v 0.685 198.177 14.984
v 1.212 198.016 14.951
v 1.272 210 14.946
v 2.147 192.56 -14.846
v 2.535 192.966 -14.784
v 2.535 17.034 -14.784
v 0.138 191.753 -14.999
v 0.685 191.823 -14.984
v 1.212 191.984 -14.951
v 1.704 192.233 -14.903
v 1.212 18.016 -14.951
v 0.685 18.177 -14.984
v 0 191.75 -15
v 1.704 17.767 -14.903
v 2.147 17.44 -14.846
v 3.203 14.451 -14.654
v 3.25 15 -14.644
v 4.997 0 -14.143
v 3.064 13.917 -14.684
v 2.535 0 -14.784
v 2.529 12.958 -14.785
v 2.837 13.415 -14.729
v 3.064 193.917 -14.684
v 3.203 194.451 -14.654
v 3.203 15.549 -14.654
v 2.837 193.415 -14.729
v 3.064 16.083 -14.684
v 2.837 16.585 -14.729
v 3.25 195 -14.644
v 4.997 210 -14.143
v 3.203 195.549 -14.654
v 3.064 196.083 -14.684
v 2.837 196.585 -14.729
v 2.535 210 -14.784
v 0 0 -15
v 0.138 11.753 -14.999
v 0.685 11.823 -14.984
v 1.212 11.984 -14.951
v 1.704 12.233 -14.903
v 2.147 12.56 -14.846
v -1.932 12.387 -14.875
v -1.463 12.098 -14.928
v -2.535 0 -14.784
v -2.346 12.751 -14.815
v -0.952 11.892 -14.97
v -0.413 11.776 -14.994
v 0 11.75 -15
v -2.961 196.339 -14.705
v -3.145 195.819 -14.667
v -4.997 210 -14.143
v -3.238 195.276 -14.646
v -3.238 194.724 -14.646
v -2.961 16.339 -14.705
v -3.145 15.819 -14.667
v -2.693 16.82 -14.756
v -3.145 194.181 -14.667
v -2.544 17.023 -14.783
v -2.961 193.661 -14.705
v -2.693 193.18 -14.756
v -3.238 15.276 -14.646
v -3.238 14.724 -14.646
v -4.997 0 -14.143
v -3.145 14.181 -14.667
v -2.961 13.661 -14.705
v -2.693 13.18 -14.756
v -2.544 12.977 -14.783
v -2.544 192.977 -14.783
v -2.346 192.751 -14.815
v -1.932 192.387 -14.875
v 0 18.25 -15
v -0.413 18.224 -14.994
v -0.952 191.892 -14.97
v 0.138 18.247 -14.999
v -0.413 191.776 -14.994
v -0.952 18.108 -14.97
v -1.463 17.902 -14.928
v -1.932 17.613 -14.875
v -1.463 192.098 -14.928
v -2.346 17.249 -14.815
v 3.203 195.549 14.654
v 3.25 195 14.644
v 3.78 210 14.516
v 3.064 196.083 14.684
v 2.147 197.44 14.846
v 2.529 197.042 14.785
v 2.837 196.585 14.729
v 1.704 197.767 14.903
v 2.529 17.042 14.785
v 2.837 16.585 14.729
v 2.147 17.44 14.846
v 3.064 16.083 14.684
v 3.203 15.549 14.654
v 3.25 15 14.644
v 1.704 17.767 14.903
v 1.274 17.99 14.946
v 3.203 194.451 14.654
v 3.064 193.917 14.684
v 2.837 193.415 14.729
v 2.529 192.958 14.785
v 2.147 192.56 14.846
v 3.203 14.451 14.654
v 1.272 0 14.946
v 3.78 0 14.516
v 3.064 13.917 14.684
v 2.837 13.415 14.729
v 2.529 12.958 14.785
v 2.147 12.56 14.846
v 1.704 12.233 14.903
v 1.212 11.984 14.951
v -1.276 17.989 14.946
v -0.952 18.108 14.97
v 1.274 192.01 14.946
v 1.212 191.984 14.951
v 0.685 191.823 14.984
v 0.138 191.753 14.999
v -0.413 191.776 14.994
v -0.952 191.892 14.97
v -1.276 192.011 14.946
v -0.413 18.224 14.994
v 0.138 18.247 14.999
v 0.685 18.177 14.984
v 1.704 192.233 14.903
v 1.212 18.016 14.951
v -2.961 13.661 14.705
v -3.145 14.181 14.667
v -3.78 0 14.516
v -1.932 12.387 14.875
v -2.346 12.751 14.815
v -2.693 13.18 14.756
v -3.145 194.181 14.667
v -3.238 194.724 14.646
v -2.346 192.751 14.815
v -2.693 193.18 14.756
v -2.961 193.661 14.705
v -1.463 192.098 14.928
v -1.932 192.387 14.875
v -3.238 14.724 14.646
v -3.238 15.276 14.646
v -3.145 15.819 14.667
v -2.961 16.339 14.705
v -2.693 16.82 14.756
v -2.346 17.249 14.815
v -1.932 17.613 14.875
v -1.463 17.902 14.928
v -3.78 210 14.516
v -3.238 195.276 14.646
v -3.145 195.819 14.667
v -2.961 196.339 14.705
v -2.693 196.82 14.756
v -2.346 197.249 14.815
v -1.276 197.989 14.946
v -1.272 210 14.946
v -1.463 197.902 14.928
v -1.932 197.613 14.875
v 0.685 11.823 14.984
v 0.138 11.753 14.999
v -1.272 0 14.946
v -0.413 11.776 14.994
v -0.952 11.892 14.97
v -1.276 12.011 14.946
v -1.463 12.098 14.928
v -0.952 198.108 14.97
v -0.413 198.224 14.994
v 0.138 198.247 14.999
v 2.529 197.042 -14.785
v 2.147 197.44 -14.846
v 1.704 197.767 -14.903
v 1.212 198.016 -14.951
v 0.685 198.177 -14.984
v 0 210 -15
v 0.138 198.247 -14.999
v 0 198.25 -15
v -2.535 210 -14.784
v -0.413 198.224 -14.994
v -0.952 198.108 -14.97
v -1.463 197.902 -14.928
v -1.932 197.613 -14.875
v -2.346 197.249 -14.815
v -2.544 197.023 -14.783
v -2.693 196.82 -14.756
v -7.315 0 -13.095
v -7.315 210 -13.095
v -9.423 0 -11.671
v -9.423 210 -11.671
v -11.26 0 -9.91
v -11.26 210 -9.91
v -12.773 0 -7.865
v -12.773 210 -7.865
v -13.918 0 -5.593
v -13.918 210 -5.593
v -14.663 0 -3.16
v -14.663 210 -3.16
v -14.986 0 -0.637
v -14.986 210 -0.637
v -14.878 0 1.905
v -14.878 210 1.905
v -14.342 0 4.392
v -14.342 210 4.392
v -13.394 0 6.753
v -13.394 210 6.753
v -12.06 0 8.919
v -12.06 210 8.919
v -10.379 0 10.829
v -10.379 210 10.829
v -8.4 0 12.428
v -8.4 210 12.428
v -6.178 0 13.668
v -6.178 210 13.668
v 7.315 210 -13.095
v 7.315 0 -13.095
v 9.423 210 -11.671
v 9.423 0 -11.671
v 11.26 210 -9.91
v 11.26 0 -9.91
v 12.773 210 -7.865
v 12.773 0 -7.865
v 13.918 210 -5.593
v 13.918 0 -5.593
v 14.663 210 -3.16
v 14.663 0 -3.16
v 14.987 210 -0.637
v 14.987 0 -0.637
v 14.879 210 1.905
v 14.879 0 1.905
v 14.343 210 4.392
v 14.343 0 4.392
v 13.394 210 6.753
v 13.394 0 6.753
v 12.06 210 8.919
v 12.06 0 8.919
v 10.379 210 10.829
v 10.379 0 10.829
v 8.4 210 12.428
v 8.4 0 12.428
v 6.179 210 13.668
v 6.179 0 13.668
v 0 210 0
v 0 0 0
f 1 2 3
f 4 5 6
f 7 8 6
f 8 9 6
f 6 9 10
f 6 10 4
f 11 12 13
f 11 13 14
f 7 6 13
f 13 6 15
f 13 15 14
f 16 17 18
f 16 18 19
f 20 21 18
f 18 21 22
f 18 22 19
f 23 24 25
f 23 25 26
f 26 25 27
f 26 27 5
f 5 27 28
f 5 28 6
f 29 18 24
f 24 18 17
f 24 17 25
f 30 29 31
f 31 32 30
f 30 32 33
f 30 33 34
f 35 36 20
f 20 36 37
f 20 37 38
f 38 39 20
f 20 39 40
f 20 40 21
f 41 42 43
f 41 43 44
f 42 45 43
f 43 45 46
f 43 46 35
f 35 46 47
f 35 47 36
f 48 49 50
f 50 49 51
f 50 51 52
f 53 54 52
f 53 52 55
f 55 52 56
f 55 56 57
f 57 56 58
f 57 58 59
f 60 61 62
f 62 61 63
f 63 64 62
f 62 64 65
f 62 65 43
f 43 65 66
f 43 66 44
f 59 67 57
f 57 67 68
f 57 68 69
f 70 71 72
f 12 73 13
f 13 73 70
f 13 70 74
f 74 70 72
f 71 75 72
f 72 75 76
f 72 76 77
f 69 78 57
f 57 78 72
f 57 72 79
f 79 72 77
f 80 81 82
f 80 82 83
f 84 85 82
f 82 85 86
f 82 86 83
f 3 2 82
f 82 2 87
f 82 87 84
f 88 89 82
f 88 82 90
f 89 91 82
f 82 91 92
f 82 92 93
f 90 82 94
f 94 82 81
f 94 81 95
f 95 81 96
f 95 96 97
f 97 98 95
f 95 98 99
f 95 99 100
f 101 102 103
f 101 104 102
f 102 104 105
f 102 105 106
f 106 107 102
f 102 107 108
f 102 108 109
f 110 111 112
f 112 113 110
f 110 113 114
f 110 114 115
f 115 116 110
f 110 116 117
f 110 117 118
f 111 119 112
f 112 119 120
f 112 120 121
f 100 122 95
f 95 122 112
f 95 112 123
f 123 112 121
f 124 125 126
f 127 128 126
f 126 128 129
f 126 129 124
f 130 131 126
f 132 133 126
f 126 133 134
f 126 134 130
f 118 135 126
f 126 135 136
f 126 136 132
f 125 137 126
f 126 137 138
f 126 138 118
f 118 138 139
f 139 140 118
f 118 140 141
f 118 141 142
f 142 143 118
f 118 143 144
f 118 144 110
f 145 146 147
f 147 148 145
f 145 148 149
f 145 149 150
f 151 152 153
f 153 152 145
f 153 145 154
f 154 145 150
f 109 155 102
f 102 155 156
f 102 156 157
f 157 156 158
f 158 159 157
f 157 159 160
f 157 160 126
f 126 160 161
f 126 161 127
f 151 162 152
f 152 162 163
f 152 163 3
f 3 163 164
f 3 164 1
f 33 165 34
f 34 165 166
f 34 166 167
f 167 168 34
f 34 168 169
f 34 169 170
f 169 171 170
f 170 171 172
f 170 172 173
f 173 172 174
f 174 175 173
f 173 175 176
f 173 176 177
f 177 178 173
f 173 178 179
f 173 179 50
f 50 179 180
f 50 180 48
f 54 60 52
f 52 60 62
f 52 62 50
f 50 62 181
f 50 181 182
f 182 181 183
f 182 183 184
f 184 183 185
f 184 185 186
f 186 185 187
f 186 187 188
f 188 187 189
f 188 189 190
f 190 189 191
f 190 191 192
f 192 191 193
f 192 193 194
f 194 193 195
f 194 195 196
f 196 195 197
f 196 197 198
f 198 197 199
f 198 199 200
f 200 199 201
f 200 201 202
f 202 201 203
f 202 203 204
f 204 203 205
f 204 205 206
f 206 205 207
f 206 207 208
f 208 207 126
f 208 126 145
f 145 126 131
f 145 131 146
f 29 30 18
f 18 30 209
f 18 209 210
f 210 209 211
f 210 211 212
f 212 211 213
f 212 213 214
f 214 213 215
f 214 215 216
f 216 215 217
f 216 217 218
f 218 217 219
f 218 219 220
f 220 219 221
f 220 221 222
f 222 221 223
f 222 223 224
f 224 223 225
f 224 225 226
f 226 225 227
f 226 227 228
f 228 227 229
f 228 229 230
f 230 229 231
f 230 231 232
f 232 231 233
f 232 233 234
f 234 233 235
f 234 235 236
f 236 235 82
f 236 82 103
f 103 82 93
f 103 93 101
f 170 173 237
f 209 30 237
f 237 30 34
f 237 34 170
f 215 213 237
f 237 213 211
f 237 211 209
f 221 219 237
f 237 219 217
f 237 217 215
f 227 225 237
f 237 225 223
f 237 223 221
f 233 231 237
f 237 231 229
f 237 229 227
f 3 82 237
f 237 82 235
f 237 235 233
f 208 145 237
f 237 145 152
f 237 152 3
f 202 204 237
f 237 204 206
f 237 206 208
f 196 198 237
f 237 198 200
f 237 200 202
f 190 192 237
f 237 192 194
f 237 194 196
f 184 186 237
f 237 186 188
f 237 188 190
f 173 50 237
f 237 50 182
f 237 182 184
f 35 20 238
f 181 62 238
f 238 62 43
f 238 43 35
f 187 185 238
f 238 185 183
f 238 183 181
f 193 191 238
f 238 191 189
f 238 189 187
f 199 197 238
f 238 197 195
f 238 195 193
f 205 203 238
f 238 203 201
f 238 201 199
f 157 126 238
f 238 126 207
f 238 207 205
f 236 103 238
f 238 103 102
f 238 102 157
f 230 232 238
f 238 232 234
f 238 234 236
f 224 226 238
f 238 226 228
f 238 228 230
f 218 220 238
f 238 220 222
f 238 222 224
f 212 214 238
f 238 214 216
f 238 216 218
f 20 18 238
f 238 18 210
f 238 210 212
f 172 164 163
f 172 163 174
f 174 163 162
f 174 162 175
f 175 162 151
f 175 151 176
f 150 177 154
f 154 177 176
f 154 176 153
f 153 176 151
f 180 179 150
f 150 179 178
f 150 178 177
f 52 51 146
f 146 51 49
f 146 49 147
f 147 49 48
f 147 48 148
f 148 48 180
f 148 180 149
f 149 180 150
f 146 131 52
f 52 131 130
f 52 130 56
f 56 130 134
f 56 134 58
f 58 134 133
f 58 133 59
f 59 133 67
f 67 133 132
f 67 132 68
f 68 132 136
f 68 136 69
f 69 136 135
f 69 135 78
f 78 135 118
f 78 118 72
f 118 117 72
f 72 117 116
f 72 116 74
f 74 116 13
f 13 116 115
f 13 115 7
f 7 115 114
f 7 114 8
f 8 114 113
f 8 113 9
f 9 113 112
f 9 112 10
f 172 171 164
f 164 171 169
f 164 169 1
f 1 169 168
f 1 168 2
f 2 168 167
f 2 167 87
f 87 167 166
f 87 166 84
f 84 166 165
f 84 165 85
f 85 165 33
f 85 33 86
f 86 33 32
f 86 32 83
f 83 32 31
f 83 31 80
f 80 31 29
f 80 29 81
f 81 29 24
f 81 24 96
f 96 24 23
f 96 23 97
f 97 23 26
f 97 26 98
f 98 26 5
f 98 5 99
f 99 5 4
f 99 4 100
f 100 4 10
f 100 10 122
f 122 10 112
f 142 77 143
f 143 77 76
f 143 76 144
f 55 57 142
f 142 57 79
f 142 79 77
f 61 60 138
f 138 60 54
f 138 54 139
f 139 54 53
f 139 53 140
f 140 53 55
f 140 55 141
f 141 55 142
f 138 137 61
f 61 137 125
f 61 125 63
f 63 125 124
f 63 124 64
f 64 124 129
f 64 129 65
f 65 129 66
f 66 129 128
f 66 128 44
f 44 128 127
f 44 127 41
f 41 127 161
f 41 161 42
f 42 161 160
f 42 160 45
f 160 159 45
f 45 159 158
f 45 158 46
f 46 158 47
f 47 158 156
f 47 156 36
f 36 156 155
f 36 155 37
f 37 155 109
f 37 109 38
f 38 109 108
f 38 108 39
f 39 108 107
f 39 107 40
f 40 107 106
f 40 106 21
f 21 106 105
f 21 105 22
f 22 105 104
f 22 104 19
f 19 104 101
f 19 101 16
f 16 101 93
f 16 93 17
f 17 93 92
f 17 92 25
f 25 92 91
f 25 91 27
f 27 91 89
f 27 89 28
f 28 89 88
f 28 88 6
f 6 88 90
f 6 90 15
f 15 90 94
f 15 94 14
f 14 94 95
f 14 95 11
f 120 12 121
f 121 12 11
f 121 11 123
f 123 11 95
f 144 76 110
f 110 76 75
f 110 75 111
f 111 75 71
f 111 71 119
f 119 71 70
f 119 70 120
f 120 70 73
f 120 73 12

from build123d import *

# Parameters (mm, degrees)
SKETCH1_W          = 15
SKETCH1_H          = 210
SKETCH3_R          = 3.25
CUT_EXTRUDE1_DEPTH = 212.068709192


with BuildPart() as part:
    # Sketch1 → Revolve1 (revolve)
    with BuildSketch(Plane.XY, mode=Mode.PRIVATE) as revolve1_sk:
        with Locations((-7.5, 105)):
            Rectangle(SKETCH1_W, SKETCH1_H)
    revolve(revolve1_sk.sketch.rotate(Axis((0, 0, 0), (0, 1, 0)), 270), axis=Axis((0, 0, 0), (0, 1, 0)))

    # Sketch3 → Cut-Extrude1 (cut, symmetric)
    with BuildSketch(Plane.XY):
        with Locations((0, 195)):
            Circle(SKETCH3_R)
    cut_extrude1 = extrude(amount=CUT_EXTRUDE1_DEPTH, both=True, mode=Mode.SUBTRACT)

    # Mirror1: Cut-Extrude1 across plane
    add(cut_extrude1.mirror(Plane.ZX.offset(105)), mode=Mode.SUBTRACT)


solid = part.part
